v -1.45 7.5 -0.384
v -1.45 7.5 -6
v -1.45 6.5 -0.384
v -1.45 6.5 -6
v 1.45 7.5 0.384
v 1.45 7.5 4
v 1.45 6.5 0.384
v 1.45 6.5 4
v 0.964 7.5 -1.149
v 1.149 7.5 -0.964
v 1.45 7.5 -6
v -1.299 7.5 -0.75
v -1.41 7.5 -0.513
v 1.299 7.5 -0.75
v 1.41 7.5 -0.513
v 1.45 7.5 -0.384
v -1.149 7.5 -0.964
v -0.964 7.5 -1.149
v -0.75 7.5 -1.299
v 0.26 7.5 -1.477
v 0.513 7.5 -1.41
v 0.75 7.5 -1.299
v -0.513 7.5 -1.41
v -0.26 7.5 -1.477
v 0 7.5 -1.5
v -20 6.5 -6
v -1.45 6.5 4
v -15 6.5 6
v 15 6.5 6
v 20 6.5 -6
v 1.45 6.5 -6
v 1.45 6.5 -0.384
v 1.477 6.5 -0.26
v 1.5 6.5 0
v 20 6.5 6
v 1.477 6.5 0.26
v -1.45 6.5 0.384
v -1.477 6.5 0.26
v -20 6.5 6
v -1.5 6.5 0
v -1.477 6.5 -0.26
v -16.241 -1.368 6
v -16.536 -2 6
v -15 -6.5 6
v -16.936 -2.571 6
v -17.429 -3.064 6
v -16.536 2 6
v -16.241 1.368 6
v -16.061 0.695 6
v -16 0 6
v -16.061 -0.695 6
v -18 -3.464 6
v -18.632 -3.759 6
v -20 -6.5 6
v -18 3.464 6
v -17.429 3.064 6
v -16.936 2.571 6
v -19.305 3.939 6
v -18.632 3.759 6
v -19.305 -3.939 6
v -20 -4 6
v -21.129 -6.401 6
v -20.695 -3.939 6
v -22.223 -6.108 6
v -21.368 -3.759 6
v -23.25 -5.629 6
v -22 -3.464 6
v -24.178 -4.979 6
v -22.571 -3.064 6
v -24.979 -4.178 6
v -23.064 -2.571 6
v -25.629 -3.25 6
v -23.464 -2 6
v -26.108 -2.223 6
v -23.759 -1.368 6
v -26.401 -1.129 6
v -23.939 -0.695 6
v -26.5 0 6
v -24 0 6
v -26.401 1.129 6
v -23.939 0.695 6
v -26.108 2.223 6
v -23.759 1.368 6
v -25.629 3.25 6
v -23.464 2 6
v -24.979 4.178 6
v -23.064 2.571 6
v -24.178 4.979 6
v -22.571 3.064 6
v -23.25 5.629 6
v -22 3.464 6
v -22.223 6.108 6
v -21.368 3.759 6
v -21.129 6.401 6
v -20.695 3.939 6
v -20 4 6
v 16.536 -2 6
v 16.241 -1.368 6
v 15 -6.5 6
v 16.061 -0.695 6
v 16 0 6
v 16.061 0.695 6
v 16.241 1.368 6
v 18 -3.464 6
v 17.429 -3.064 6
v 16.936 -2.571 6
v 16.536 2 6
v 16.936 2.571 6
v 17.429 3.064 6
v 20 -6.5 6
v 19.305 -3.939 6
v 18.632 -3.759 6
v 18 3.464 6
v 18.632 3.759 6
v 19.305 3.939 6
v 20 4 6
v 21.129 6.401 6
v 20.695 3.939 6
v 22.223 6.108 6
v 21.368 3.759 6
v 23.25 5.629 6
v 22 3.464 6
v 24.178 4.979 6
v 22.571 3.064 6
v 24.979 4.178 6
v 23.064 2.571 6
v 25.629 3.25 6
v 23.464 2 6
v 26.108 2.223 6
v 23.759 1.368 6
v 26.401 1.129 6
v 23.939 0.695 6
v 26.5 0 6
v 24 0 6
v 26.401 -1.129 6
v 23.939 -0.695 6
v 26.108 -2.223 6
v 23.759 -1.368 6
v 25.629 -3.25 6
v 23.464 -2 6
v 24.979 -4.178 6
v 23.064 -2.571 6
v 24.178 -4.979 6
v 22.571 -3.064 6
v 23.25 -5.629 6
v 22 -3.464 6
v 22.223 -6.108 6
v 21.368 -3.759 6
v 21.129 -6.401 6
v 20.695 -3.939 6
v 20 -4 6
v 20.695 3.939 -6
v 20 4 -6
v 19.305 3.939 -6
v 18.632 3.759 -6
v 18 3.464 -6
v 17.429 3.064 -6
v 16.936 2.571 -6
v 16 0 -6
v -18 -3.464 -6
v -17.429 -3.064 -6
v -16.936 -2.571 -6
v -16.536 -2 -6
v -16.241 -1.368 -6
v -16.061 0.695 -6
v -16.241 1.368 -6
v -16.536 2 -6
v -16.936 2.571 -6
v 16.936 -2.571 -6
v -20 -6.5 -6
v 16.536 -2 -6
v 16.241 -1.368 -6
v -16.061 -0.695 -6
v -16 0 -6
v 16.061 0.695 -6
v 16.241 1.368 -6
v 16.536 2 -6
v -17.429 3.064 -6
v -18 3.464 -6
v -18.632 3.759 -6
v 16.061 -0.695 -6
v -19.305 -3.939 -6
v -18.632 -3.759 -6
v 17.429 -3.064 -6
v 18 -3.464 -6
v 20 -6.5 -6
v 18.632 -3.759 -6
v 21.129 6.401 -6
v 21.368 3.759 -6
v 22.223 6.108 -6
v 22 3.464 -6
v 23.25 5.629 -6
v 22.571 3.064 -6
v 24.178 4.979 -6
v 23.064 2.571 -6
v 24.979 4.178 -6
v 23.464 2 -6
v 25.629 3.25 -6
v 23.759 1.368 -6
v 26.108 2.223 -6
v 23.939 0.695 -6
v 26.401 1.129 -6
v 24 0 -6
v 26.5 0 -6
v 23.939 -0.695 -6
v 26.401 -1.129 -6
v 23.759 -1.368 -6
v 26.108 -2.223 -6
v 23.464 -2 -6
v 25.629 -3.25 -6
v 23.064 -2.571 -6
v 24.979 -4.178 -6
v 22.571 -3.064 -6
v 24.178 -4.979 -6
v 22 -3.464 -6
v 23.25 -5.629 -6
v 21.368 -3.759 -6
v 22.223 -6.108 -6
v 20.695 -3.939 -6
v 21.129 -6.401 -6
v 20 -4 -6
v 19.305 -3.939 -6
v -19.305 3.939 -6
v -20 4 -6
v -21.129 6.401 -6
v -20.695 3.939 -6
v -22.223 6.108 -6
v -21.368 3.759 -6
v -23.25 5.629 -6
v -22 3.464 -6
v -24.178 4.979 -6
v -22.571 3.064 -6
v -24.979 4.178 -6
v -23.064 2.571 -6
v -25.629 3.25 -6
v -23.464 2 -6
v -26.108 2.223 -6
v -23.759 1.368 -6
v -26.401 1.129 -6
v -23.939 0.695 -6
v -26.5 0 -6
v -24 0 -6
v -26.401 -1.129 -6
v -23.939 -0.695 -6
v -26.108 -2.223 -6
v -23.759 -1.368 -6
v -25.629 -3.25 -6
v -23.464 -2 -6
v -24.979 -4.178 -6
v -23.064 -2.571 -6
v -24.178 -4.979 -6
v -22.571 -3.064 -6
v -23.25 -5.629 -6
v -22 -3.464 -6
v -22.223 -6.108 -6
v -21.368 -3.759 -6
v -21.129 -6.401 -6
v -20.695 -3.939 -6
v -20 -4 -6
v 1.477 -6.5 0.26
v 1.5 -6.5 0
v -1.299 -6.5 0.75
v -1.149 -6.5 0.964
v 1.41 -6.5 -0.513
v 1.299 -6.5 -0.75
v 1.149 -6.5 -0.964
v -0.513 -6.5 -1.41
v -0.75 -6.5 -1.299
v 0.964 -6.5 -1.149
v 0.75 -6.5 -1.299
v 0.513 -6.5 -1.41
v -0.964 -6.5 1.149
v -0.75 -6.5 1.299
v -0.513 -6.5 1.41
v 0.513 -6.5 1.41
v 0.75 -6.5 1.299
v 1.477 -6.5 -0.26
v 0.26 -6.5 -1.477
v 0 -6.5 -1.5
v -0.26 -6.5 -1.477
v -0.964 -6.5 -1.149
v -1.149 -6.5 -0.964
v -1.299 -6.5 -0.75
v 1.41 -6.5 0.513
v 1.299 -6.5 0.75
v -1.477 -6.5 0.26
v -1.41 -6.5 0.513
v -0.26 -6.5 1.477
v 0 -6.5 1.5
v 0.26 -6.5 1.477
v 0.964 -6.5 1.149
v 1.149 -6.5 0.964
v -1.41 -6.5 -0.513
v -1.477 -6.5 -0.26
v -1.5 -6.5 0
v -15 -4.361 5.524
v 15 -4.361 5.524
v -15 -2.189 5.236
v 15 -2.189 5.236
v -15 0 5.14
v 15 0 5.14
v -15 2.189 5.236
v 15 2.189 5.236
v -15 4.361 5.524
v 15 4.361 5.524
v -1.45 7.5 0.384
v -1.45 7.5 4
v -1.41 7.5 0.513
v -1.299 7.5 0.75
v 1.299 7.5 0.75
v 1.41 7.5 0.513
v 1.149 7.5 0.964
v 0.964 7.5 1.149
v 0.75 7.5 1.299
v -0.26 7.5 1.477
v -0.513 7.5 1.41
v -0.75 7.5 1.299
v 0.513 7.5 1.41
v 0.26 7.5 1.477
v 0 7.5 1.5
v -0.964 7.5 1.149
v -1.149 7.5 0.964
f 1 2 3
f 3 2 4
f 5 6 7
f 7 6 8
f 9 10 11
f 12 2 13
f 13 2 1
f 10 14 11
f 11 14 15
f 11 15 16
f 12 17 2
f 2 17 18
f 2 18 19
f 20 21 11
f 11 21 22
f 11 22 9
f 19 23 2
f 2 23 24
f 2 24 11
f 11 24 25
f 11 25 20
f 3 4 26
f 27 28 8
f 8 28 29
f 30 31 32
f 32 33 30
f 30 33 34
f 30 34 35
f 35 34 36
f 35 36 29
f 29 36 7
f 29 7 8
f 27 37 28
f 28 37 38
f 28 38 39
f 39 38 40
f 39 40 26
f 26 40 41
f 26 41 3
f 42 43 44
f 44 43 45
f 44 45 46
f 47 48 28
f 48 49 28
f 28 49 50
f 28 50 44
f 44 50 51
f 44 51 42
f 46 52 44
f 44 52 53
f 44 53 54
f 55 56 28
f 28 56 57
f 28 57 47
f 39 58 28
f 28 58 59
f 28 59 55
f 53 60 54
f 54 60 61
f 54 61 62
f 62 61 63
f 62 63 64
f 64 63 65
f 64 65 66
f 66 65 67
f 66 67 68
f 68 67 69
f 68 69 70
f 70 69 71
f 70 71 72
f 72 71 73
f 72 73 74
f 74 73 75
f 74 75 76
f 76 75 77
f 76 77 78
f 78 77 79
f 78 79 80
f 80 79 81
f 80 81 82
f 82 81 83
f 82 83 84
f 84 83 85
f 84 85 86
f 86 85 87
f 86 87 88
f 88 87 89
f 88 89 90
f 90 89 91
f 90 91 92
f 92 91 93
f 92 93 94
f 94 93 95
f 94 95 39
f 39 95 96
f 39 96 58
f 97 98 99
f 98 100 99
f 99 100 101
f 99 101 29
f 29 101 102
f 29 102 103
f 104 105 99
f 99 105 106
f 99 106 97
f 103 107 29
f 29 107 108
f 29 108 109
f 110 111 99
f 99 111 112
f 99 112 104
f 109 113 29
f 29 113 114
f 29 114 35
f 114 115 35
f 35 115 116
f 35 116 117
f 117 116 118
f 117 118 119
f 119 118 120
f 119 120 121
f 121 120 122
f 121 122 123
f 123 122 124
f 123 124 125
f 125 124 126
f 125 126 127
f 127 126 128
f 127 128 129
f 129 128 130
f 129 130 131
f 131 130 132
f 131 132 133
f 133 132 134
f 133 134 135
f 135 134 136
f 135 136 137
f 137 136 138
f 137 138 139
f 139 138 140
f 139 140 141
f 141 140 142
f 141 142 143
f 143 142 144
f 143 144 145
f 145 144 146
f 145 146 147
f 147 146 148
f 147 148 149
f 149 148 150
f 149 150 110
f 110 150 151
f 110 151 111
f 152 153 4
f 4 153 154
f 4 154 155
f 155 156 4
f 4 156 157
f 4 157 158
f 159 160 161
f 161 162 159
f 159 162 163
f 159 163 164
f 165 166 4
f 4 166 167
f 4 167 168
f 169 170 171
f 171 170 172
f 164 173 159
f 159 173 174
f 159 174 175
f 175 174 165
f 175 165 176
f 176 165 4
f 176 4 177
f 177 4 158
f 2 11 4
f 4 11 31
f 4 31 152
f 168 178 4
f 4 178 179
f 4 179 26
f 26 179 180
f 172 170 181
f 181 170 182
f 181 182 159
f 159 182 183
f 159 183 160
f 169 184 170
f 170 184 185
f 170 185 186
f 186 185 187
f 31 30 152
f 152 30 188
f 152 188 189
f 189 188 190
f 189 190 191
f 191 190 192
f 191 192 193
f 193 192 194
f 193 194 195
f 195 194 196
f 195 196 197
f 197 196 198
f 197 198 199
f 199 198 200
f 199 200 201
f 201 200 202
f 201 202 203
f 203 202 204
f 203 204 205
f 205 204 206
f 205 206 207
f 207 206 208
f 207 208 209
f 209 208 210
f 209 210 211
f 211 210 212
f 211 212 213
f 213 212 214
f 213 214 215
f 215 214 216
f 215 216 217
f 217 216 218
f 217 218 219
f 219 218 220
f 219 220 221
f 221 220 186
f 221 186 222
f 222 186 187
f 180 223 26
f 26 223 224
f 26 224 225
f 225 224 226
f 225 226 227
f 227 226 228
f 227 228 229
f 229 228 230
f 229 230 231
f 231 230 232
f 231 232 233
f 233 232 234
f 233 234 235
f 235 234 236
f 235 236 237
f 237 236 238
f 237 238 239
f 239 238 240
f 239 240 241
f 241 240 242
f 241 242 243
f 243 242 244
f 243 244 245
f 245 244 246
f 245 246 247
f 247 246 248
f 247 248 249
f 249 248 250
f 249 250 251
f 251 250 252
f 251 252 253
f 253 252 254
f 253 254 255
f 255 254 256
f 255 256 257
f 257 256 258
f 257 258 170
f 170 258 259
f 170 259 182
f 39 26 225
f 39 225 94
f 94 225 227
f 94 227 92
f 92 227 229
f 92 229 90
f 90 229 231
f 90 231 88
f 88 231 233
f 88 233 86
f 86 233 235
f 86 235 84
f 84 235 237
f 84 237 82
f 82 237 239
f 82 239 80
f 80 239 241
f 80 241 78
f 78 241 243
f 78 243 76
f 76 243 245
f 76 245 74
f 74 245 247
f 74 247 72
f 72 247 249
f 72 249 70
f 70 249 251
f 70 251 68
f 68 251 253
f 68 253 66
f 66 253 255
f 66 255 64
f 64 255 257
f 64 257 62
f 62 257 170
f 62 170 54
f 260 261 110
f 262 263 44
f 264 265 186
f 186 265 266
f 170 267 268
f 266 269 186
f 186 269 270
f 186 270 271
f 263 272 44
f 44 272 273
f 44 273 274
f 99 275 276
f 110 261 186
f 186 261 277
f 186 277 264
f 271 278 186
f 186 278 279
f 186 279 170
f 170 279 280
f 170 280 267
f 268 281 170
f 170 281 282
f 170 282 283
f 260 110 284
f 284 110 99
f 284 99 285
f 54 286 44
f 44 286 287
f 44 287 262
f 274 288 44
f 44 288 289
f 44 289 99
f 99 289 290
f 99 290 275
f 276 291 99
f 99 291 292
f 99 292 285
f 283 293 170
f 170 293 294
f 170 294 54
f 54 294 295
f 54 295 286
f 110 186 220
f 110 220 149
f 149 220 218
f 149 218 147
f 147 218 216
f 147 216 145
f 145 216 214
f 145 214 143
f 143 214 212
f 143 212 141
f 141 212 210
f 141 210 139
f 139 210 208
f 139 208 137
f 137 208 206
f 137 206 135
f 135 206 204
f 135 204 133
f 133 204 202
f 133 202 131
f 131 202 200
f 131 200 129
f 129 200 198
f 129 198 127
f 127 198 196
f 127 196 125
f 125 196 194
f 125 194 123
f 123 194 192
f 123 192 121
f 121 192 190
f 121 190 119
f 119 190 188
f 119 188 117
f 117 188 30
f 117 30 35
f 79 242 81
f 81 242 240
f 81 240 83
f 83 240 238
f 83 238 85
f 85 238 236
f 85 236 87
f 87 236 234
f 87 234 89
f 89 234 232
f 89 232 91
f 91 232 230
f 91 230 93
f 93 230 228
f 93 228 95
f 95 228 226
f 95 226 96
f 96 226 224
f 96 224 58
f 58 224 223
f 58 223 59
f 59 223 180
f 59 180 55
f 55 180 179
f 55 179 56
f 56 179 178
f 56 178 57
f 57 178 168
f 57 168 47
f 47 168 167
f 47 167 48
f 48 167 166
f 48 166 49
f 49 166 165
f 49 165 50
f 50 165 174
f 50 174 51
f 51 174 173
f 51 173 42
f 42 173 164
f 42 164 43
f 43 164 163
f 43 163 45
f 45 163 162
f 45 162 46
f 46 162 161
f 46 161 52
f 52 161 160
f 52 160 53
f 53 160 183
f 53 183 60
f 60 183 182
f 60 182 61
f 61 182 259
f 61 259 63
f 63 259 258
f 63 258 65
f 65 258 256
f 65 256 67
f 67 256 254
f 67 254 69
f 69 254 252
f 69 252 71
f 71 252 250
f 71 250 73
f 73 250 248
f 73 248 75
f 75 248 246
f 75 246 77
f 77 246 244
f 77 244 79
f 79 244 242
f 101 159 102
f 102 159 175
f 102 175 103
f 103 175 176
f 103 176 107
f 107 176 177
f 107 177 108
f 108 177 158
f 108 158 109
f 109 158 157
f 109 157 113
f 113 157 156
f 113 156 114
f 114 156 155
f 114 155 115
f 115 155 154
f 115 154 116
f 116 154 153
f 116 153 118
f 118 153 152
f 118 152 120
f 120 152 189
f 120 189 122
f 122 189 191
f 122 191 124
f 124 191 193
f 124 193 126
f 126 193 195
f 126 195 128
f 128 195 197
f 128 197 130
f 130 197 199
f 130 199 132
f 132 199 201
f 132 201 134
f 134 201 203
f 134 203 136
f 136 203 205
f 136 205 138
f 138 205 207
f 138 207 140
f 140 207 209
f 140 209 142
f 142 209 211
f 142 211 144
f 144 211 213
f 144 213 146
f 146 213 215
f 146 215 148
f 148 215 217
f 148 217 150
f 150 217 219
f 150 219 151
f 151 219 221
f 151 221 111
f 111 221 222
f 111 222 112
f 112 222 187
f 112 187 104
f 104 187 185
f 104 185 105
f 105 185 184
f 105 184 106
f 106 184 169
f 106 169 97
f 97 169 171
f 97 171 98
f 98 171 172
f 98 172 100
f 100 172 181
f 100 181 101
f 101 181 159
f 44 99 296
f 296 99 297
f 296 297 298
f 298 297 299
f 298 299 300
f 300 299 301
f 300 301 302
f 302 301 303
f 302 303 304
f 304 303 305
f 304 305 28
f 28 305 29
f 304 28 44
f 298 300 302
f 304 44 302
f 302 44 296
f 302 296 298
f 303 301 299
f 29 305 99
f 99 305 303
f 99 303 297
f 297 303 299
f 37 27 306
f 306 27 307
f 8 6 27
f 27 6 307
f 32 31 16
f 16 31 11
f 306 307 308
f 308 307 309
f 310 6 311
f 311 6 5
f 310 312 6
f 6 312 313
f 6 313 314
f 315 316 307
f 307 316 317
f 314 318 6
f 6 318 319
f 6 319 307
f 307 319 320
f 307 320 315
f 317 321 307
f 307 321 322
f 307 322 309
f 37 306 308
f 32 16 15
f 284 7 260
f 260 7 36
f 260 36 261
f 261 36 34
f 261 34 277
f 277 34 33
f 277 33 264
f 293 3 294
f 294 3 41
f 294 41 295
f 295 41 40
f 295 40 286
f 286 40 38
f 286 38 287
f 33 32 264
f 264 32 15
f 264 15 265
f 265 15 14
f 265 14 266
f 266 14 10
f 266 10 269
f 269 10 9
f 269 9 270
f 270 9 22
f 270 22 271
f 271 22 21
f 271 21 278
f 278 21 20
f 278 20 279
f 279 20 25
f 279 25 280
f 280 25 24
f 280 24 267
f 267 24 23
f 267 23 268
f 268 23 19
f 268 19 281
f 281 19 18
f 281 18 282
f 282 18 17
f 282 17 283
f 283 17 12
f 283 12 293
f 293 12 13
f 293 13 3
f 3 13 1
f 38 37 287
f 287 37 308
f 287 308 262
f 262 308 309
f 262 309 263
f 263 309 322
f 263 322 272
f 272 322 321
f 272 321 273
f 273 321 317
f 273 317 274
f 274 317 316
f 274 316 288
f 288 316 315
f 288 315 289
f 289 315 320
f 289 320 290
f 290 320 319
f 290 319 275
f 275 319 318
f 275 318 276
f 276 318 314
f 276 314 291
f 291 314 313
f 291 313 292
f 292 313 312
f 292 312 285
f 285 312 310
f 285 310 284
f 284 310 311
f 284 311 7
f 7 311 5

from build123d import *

# Parameters (mm, degrees)
SKETCH1_R             = 4
MAIN_DEPTH            = 6
SCREWBALLDRIVER_DEPTH = 15
SKETCH3_W             = 2.9
SKETCH3_H             = 10
MAKERBEAMRAIL_DEPTH   = 7.5
SKETCH4_R             = 1.5
MAKERBEAMHOLE_DEPTH   = 15


with BuildPart() as part:
    # Sketch1 → Main (new body, symmetric)
    with BuildSketch(Plane.XY):
        with BuildLine():
            Line((-20, 6.5), (20, 6.5))
            ThreePointArc((20, 6.5), (26.5, 0), (20, -6.5))
            Line((20, -6.5), (-20, -6.5))
            ThreePointArc((-20, -6.5), (-26.5, 0), (-20, 6.5))
        make_face()
        with Locations((-20, 0)):
            Circle(SKETCH1_R, mode=Mode.SUBTRACT)
        with Locations((20, 0)):
            Circle(SKETCH1_R, mode=Mode.SUBTRACT)
    extrude(amount=MAIN_DEPTH, both=True)

    # Sketch2 → ScrewBallDriver (cut, symmetric)
    with BuildSketch(Plane(origin=(0, 0, 0), x_dir=(0, 0, -1), z_dir=(1, 0, 0))):
        with BuildLine():
            Line((-6, 6.5), (-6, -6.5))
            ThreePointArc((-6, -6.5), (-5.140215409, 0), (-6, 6.5))
        make_face()
    extrude(amount=SCREWBALLDRIVER_DEPTH, both=True, mode=Mode.SUBTRACT)

    # Sketch3 → MakerBeamRail (add)
    with BuildSketch(Plane(origin=(0, 0, 0), x_dir=(1, 0, 0), z_dir=(0, 1, 0))):
        with Locations((0, 1)):
            Rectangle(SKETCH3_W, SKETCH3_H)
    extrude(amount=MAKERBEAMRAIL_DEPTH)

    # Sketch4 → MakerBeamHole (cut, through all)
    with BuildSketch(Plane(origin=(0, 7.5, 0), x_dir=(1, 0, 0), z_dir=(0, 1, 0))):
        Circle(SKETCH4_R)
    extrude(amount=-MAKERBEAMHOLE_DEPTH, mode=Mode.SUBTRACT)


solid = part.part
